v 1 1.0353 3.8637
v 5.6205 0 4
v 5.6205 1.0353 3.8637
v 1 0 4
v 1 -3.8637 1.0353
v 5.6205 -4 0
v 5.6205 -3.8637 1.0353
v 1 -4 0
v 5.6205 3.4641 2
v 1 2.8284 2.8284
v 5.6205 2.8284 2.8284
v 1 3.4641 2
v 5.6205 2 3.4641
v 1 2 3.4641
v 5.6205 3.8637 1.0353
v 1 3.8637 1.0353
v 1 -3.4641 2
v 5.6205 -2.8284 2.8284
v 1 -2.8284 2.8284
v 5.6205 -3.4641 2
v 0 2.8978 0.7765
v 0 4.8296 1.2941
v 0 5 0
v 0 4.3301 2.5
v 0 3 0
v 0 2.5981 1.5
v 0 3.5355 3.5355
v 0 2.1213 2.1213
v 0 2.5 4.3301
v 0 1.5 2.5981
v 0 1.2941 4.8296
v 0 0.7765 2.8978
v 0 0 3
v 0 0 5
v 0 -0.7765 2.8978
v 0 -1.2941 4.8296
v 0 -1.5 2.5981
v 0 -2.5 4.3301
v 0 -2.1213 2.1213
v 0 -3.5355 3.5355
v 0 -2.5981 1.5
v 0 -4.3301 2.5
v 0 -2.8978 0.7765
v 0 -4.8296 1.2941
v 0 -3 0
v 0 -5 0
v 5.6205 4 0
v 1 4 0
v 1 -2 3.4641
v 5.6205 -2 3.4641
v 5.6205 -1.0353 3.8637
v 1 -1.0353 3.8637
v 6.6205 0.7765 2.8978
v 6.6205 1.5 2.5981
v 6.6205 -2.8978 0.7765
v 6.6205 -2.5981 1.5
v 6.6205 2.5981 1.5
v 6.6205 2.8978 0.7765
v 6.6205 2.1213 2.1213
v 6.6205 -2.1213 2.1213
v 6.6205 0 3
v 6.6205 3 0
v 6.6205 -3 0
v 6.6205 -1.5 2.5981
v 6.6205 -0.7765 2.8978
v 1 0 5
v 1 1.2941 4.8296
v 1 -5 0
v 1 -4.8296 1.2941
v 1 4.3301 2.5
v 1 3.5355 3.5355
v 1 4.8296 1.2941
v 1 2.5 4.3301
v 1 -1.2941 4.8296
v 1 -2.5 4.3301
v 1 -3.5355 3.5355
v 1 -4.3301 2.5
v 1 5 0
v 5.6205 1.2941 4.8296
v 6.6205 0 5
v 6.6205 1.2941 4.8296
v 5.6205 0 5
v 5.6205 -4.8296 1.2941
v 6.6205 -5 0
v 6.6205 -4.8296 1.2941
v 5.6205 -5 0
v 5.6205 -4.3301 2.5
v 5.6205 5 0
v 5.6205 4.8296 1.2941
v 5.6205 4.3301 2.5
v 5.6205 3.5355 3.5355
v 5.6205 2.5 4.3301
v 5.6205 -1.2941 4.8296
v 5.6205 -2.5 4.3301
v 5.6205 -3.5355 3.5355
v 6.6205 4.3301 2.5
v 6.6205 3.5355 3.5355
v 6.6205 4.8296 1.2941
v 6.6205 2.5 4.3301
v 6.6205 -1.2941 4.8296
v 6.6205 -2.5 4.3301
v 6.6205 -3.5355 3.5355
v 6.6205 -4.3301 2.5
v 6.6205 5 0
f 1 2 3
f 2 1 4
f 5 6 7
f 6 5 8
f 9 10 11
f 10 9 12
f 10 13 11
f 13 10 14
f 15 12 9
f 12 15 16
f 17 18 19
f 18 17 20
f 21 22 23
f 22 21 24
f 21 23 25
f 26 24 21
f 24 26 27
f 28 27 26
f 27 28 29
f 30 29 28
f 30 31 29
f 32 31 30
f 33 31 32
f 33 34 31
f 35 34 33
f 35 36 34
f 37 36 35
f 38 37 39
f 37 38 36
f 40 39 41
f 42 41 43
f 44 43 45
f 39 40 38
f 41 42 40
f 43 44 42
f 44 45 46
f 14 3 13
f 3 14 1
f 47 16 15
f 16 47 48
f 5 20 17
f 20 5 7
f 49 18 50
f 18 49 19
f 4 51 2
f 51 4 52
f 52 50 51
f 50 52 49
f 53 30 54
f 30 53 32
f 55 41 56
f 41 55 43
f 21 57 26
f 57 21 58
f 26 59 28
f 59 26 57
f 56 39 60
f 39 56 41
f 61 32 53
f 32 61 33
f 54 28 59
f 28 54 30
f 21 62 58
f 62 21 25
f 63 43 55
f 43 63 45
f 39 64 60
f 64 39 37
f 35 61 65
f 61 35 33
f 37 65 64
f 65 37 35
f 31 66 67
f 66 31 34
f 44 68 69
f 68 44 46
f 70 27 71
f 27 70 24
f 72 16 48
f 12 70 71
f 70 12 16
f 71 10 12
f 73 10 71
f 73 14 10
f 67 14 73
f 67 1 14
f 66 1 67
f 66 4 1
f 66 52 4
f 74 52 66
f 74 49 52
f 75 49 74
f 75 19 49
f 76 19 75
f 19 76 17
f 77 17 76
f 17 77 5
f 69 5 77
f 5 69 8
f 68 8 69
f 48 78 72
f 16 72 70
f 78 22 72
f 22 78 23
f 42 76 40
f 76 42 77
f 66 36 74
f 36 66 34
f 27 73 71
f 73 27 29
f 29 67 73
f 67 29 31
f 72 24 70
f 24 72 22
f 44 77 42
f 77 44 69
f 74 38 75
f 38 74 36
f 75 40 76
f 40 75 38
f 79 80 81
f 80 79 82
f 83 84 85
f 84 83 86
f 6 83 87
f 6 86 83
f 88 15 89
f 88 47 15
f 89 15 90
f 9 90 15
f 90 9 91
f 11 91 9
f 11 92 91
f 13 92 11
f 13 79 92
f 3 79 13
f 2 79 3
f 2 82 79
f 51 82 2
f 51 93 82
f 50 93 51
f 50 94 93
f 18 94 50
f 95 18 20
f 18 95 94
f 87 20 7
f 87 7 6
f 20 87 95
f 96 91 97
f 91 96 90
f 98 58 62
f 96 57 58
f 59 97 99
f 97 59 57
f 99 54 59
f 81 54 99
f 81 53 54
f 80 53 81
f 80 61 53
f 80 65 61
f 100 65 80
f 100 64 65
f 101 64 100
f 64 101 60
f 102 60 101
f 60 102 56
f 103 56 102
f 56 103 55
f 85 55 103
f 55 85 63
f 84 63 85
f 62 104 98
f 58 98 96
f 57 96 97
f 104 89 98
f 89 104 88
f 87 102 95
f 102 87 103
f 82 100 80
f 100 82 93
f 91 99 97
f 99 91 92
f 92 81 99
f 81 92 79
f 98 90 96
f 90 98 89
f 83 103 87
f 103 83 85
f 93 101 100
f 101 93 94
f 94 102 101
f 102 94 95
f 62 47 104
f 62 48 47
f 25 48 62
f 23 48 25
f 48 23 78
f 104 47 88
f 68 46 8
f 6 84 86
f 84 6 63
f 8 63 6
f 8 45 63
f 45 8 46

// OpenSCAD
// file: ../build_environments.scad
// build_environments.scad: modules to build level sections
//

module pool(diameter=10.0, wall_height=2.0, step_width=3.0, connections=[])
{
    difference() {
        union() {
        difference() {
            cylinder(h=0.5,r1=diameter+step_width,r2=diameter+step_width,$fn=48);
            translate([0,0,-0.1])
                cylinder(h=0.7,r1=diameter,r2=diameter,$fn=48);
        }
        difference() {
            cylinder(h=wall_height,r1=diameter+step_width+1.0,r2=diameter+step_width+1.0,$fn=48);
            translate([0,0,-0.1])
                cylinder(h=wall_height+0.2,r1=diameter+step_width,r2=diameter+step_width,$fn=48);
        }
        }
    
        for (c = connections)
        {
            rotate([0,90,0]) {
                angle = atan2(c[1],c[0]);
                rotate([-angle,0,0]) {
                    cylinder(h=diameter+5.0,r1=c[2],r2=c[2],$fn=48);
                }
            }
        }
    }
}

module straight(length=10.0, width=2.0, dy1=0.0, dy2=0.0, dz=0.0)
{
    dims = [0, 0, 0, 0, 0, (dz/length)];
    matrix = [
        [ 1, dims[0], dims[1], 0 ],
        [ dims[2], 1, dims[4], 0 ],
        [ dims[5], dims[3], 1, 0 ],
        [ 0, 0, 0, 1 ]
    ];
    multmatrix(matrix)
    difference() {
        translate([dy1,0,0])
        union() {
            rotate([0,90,0]) {
                difference() {
                    cylinder(h=(length-dy1-dy2),r1=width+1.0,r2=width+1.0,$fn=24);
                    translate([0,0,-0.1])
                        cylinder(h=(length-dy1-dy2+0.2),r1=width,r2=width,$fn=24);
                }
                difference() {
                    cylinder(h=1.0,r1=width+2.0,r2=width+2.0,$fn=24);
                    translate([0,0,-0.1])
                        cylinder(h=1.2,r1=width,r2=width,$fn=24);
                }
                translate([0,0,(length-dy1-dy2)-1.0]) {
                    difference() {
                        cylinder(h=1.0,r1=width+2.0,r2=width+2.0,$fn=24);
                        translate([0,0,-0.1])
                            cylinder(h=1.2,r1=width,r2=width,$fn=24);
                    }
                }
            }
        }
        translate([0,0,-(2*width+4.0)/2])
            cube([3*length,3*length,2*width+4.0],center=true);
    }
}

module curve(p0=[0,0], center=[0,0], dir=1, angle=0.0, width=2.0)
{
    radius = sqrt((p0[0]-center[0])*(p0[0]-center[0]) + (p0[1]-center[1])*(p0[1]-center[1]));
    if (dir == 0) {
        difference() {
            rotate([0,0,-90])
            difference() {
                rotate_extrude(angle = angle, convexity = 10, $fn=32)
                    translate([radius, 0, 0])
                        circle(r = width+1.0,$fn=24);
                rotate([0,0,-1.0])
                    rotate_extrude(angle = angle+2.0, convexity = 10, $fn=32)
                        translate([radius, 0, 0])
                            circle(r = width,$fn=24);
            }
            translate([0,0,-(2*width+4.0)/2])
                cube([5*radius,5*radius,2*width+4.0],center=true);
        }
    }
    else {
        difference() {
            rotate([0,0,90])
            difference() {
                rotate_extrude(angle = -angle, convexity = 10, $fn=32)
                    translate([radius, 0, 0])
                        circle(r = width+1.0,$fn=24);
                rotate([0,0,1.0])
                    rotate_extrude(angle = -angle-2.0, convexity = 10, $fn=32)
                        translate([radius, 0, 0])
                            circle(r = width,$fn=24);
            }
            translate([0,0,-(2*width+4.0)/2])
                cube([5*radius,5*radius,2*width+4.0],center=true);
        }
    }

}

// test pool
//pool(diameter=12.0000, wall_height=3.0000, step_width=3.0000, connections=[[0.0000,-26.0000,2.0000], [23.6074,0.0000,2.0000]]);

// test straight, slope
//straight(length=26.0000, width=2.0000, dy1=11.8322, dy2=6.7082, dz=0.0000);
//straight(length=29.1549, width=12.0000, dy1=0.0000, dy2=0.0000, dz=-15.0000);

// test curve
//curve(p0=[23.6074, 0.0000], center=[23.6074, 5.0000], dir=0, angle=60.1011, width=2.0000);
//curve(p0=[33.6426, 12.4219], center=[37.9771, 9.9295], dir=1, angle=120.4627, width=2.0000);
// main file
use <../build_environments.scad>;
straight(length=6.6205, width=3.0000, dy1=0.0000, dy2=0.0000, dz=0.0000);
